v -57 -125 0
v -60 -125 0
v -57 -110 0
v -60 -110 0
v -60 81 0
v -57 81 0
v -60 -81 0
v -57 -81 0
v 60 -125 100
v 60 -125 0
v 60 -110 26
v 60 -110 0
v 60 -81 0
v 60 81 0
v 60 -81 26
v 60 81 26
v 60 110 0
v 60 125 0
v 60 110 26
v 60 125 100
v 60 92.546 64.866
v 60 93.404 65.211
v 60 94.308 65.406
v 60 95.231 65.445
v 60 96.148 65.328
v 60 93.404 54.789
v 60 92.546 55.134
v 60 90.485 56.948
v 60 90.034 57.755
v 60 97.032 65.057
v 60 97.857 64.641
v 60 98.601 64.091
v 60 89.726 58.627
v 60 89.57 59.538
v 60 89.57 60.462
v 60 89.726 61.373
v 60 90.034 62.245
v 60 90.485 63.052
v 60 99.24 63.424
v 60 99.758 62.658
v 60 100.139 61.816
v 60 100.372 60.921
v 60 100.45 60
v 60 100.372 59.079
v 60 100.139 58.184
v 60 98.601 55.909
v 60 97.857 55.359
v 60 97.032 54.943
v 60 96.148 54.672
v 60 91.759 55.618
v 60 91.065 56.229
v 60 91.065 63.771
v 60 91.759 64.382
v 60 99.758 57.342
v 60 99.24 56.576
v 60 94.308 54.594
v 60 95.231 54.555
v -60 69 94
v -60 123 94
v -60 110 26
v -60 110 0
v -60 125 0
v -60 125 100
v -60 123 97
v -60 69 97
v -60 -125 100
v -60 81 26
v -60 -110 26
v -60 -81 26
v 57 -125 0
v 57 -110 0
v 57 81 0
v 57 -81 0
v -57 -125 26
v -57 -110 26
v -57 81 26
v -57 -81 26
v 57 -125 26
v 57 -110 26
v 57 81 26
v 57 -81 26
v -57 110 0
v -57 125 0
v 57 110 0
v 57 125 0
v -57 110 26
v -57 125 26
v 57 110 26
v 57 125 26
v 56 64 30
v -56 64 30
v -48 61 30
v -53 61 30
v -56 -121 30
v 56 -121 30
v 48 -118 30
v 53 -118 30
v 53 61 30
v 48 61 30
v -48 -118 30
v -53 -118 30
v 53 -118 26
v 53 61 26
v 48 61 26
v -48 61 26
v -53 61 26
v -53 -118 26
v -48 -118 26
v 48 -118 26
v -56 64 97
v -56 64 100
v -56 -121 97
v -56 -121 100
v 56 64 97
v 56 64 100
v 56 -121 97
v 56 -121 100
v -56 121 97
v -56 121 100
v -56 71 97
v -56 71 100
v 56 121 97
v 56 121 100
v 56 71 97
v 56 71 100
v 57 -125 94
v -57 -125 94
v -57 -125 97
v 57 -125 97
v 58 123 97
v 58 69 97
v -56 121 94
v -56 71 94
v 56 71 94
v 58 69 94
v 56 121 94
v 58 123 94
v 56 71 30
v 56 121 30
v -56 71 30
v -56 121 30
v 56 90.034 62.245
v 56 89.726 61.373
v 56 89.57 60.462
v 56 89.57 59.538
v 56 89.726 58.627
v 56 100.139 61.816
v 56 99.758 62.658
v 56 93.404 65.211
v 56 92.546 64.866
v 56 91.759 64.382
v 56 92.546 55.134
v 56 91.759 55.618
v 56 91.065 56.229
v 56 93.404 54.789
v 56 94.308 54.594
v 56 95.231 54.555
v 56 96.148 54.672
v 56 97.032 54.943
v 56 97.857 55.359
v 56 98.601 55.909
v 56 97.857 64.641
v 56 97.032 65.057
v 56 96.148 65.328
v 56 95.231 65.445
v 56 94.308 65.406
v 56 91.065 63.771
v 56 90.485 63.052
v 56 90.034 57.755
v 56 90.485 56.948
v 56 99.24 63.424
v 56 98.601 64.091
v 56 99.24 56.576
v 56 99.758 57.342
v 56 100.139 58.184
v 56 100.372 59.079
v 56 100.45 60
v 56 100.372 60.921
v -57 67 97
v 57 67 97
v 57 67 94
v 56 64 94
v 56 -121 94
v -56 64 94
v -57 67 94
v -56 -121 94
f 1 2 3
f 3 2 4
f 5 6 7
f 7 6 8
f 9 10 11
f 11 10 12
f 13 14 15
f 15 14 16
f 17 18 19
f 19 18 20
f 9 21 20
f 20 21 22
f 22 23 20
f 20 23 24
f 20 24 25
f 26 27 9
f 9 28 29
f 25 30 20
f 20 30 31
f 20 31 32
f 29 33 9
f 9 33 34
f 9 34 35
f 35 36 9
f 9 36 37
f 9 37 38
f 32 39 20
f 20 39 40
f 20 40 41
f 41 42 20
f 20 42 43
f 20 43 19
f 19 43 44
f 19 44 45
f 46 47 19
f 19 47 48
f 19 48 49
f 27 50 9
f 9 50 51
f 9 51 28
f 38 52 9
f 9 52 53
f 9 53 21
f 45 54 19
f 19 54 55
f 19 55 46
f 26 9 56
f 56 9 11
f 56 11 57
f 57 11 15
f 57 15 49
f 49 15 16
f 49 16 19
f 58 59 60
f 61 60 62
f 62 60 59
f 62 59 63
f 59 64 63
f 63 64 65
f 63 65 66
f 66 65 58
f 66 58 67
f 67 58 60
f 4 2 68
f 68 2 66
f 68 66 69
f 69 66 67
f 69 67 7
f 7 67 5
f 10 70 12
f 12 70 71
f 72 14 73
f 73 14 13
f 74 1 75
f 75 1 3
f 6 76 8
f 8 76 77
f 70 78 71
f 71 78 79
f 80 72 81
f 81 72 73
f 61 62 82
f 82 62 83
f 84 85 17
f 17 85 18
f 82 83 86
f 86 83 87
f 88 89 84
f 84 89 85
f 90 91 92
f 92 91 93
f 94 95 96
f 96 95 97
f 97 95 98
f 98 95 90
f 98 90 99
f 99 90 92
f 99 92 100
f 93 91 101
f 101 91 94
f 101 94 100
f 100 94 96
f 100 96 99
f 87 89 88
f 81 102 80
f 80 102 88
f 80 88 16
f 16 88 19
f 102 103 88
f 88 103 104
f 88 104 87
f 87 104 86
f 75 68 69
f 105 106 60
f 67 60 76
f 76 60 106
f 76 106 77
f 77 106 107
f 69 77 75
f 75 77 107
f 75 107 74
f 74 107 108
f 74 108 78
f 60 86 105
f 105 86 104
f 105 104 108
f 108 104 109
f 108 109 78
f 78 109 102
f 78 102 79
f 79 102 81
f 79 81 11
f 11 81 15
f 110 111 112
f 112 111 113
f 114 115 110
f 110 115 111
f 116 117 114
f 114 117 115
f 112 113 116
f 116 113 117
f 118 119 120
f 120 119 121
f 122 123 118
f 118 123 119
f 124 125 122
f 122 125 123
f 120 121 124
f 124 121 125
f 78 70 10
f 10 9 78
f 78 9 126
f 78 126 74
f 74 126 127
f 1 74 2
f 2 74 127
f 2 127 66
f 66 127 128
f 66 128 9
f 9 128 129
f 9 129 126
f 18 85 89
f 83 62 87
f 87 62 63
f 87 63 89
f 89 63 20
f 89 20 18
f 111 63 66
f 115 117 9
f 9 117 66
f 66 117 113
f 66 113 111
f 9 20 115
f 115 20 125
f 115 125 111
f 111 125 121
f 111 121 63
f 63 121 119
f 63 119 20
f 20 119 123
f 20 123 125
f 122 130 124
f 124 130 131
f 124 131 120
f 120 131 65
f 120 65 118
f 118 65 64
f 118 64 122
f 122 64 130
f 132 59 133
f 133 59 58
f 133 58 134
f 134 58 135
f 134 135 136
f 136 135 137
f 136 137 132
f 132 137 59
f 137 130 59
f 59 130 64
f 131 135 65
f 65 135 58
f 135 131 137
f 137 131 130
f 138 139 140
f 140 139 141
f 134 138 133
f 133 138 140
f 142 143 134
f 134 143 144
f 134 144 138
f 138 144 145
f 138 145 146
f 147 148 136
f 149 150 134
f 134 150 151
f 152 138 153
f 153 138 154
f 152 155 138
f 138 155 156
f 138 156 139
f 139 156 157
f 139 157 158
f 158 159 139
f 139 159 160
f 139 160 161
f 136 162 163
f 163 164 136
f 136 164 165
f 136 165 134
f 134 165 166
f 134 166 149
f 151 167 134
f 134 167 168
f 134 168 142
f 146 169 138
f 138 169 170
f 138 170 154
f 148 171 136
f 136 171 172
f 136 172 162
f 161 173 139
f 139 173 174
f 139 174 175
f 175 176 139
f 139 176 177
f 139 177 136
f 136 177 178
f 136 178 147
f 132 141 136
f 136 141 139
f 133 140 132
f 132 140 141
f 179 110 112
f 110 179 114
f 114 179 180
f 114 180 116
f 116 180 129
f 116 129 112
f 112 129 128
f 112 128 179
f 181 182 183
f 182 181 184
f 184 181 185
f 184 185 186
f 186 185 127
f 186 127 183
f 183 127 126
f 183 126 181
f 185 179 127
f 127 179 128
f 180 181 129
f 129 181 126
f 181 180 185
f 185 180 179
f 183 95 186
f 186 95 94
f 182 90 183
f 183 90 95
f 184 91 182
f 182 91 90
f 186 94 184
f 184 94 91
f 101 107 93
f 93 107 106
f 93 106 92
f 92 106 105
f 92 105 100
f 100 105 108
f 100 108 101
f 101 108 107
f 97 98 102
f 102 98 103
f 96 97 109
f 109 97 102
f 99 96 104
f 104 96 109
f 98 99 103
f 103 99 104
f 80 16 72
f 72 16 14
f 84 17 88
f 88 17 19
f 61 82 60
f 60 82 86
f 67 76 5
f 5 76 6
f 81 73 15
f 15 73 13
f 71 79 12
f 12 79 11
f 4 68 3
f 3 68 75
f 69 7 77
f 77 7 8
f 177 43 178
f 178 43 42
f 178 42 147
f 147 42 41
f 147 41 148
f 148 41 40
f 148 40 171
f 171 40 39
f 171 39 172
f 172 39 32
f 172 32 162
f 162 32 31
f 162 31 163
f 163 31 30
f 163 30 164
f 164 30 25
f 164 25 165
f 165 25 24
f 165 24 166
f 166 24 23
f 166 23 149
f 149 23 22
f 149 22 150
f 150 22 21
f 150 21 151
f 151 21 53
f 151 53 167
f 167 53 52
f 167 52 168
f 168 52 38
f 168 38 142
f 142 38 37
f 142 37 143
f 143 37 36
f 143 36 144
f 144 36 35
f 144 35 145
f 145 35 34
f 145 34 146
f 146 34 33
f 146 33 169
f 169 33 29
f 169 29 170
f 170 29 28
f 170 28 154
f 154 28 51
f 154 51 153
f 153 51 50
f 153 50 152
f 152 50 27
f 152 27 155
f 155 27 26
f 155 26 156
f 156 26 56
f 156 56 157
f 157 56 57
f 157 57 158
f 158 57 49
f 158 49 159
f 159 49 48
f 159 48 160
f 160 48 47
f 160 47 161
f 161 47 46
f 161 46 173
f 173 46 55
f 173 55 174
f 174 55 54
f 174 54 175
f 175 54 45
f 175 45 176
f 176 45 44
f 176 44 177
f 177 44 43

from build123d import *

# Parameters (mm, degrees)
ESBO_O1_W                = 250
ESBO_O1_H                = 120
RESSALTO_EXTRUS_O1_DEPTH = 100
ESBO_O2_W                = 112
ESBO_O2_H                = 50
CORTE_EXTRUS_O1_DEPTH    = 70
ESBO_O3_W                = 54
ESBO_O3_H                = 3
CORTE_EXTRUS_O2_DEPTH    = 118
ESBO_O5_W                = 112
ESBO_O5_H                = 185
CORTE_EXTRUS_O3_DEPTH    = 70
ESBO_O6_W                = 114
ESBO_O6_H                = 3
CORTE_EXTRUS_O4_DEPTH    = 192
ESBO_O7_W                = 114
ESBO_O7_H                = 26
CORTE_EXTRUS_O5_DEPTH    = 500
ESBO_O8_W                = 5
ESBO_O8_H                = 179
CORTE_EXTRUS_O6_DEPTH    = 500
ESBO_O9_W                = 29
ESBO_O9_H                = 26
CORTE_EXTRUS_O7_DEPTH    = 500
ESBO_O10_R               = 5.45
CORTE_EXTRUS_O8_DEPTH    = 10


with BuildPart() as part:
    # Esboço1 → Ressalto-extrusão1 (new body)
    with BuildSketch(Plane(origin=(0, 0, 0), x_dir=(0, 1, 0), z_dir=(0, 0, 1))):
        Rectangle(ESBO_O1_W, ESBO_O1_H)
    extrude(amount=RESSALTO_EXTRUS_O1_DEPTH)

    # Esboço2 → Corte-extrusão1 (cut)
    with BuildSketch(Plane.XY.offset(100)):
        with Locations((0, 96)):
            Rectangle(ESBO_O2_W, ESBO_O2_H)
    extrude(amount=-CORTE_EXTRUS_O1_DEPTH, mode=Mode.SUBTRACT)

    # Esboço3 → Corte-extrusão2 (cut)
    with BuildSketch(Plane(origin=(-60, 0, 0), x_dir=(0, -1, 0), z_dir=(-1, 0, 0))):
        with Locations((-96, 95.5)):
            Rectangle(ESBO_O3_W, ESBO_O3_H)
    extrude(amount=-CORTE_EXTRUS_O2_DEPTH, mode=Mode.SUBTRACT)

    # Esboço5 → Corte-extrusão3 (cut)
    with BuildSketch(Plane.XY.offset(100)):
        with Locations((0, -28.5)):
            Rectangle(ESBO_O5_W, ESBO_O5_H)
    extrude(amount=-CORTE_EXTRUS_O3_DEPTH, mode=Mode.SUBTRACT)

    # Esboço6 → Corte-extrusão4 (cut)
    with BuildSketch(Plane.XZ.offset(125)):
        with Locations((0, 95.5)):
            Rectangle(ESBO_O6_W, ESBO_O6_H)
    extrude(amount=-CORTE_EXTRUS_O4_DEPTH, mode=Mode.SUBTRACT)

    # Esboço7 → Corte-extrusão5 (cut)
    with BuildSketch(Plane.XZ.offset(125)):
        with Locations((0, 13)):
            Rectangle(ESBO_O7_W, ESBO_O7_H)
    extrude(amount=-CORTE_EXTRUS_O5_DEPTH, mode=Mode.SUBTRACT)

    # Esboço8 → Corte-extrusão6 (cut)
    with BuildSketch(Plane.XY.offset(30)):
        with Locations((-50.5, -28.5)):
            Rectangle(ESBO_O8_W, ESBO_O8_H)
    corte_extrus_o6 = extrude(amount=-CORTE_EXTRUS_O6_DEPTH, mode=Mode.SUBTRACT)

    # Espelhar1: Corte-extrusão6 across plane
    add(corte_extrus_o6.mirror(Plane(origin=(0, 0, 0), x_dir=(0, 0, 1), z_dir=(1, 0, 0))), mode=Mode.SUBTRACT)

    # Esboço9 → Corte-extrusão7 (cut)
    with BuildSketch(Plane(origin=(-60, 0, 0), x_dir=(0, -1, 0), z_dir=(-1, 0, 0))):
        with Locations((-95.5, 13)):
            Rectangle(ESBO_O9_W, ESBO_O9_H)
    corte_extrus_o7 = extrude(amount=-CORTE_EXTRUS_O7_DEPTH, mode=Mode.SUBTRACT)

    # Espelhar2: Corte-extrusão7 across plane
    add(corte_extrus_o7.mirror(Plane.ZX), mode=Mode.SUBTRACT)

    # Esboço10 → Corte-extrusão8 (cut)
    with BuildSketch(Plane.YZ.offset(60)):
        with Locations((95, 60)):
            Circle(ESBO_O10_R)
    extrude(amount=-CORTE_EXTRUS_O8_DEPTH, mode=Mode.SUBTRACT)


solid = part.part
